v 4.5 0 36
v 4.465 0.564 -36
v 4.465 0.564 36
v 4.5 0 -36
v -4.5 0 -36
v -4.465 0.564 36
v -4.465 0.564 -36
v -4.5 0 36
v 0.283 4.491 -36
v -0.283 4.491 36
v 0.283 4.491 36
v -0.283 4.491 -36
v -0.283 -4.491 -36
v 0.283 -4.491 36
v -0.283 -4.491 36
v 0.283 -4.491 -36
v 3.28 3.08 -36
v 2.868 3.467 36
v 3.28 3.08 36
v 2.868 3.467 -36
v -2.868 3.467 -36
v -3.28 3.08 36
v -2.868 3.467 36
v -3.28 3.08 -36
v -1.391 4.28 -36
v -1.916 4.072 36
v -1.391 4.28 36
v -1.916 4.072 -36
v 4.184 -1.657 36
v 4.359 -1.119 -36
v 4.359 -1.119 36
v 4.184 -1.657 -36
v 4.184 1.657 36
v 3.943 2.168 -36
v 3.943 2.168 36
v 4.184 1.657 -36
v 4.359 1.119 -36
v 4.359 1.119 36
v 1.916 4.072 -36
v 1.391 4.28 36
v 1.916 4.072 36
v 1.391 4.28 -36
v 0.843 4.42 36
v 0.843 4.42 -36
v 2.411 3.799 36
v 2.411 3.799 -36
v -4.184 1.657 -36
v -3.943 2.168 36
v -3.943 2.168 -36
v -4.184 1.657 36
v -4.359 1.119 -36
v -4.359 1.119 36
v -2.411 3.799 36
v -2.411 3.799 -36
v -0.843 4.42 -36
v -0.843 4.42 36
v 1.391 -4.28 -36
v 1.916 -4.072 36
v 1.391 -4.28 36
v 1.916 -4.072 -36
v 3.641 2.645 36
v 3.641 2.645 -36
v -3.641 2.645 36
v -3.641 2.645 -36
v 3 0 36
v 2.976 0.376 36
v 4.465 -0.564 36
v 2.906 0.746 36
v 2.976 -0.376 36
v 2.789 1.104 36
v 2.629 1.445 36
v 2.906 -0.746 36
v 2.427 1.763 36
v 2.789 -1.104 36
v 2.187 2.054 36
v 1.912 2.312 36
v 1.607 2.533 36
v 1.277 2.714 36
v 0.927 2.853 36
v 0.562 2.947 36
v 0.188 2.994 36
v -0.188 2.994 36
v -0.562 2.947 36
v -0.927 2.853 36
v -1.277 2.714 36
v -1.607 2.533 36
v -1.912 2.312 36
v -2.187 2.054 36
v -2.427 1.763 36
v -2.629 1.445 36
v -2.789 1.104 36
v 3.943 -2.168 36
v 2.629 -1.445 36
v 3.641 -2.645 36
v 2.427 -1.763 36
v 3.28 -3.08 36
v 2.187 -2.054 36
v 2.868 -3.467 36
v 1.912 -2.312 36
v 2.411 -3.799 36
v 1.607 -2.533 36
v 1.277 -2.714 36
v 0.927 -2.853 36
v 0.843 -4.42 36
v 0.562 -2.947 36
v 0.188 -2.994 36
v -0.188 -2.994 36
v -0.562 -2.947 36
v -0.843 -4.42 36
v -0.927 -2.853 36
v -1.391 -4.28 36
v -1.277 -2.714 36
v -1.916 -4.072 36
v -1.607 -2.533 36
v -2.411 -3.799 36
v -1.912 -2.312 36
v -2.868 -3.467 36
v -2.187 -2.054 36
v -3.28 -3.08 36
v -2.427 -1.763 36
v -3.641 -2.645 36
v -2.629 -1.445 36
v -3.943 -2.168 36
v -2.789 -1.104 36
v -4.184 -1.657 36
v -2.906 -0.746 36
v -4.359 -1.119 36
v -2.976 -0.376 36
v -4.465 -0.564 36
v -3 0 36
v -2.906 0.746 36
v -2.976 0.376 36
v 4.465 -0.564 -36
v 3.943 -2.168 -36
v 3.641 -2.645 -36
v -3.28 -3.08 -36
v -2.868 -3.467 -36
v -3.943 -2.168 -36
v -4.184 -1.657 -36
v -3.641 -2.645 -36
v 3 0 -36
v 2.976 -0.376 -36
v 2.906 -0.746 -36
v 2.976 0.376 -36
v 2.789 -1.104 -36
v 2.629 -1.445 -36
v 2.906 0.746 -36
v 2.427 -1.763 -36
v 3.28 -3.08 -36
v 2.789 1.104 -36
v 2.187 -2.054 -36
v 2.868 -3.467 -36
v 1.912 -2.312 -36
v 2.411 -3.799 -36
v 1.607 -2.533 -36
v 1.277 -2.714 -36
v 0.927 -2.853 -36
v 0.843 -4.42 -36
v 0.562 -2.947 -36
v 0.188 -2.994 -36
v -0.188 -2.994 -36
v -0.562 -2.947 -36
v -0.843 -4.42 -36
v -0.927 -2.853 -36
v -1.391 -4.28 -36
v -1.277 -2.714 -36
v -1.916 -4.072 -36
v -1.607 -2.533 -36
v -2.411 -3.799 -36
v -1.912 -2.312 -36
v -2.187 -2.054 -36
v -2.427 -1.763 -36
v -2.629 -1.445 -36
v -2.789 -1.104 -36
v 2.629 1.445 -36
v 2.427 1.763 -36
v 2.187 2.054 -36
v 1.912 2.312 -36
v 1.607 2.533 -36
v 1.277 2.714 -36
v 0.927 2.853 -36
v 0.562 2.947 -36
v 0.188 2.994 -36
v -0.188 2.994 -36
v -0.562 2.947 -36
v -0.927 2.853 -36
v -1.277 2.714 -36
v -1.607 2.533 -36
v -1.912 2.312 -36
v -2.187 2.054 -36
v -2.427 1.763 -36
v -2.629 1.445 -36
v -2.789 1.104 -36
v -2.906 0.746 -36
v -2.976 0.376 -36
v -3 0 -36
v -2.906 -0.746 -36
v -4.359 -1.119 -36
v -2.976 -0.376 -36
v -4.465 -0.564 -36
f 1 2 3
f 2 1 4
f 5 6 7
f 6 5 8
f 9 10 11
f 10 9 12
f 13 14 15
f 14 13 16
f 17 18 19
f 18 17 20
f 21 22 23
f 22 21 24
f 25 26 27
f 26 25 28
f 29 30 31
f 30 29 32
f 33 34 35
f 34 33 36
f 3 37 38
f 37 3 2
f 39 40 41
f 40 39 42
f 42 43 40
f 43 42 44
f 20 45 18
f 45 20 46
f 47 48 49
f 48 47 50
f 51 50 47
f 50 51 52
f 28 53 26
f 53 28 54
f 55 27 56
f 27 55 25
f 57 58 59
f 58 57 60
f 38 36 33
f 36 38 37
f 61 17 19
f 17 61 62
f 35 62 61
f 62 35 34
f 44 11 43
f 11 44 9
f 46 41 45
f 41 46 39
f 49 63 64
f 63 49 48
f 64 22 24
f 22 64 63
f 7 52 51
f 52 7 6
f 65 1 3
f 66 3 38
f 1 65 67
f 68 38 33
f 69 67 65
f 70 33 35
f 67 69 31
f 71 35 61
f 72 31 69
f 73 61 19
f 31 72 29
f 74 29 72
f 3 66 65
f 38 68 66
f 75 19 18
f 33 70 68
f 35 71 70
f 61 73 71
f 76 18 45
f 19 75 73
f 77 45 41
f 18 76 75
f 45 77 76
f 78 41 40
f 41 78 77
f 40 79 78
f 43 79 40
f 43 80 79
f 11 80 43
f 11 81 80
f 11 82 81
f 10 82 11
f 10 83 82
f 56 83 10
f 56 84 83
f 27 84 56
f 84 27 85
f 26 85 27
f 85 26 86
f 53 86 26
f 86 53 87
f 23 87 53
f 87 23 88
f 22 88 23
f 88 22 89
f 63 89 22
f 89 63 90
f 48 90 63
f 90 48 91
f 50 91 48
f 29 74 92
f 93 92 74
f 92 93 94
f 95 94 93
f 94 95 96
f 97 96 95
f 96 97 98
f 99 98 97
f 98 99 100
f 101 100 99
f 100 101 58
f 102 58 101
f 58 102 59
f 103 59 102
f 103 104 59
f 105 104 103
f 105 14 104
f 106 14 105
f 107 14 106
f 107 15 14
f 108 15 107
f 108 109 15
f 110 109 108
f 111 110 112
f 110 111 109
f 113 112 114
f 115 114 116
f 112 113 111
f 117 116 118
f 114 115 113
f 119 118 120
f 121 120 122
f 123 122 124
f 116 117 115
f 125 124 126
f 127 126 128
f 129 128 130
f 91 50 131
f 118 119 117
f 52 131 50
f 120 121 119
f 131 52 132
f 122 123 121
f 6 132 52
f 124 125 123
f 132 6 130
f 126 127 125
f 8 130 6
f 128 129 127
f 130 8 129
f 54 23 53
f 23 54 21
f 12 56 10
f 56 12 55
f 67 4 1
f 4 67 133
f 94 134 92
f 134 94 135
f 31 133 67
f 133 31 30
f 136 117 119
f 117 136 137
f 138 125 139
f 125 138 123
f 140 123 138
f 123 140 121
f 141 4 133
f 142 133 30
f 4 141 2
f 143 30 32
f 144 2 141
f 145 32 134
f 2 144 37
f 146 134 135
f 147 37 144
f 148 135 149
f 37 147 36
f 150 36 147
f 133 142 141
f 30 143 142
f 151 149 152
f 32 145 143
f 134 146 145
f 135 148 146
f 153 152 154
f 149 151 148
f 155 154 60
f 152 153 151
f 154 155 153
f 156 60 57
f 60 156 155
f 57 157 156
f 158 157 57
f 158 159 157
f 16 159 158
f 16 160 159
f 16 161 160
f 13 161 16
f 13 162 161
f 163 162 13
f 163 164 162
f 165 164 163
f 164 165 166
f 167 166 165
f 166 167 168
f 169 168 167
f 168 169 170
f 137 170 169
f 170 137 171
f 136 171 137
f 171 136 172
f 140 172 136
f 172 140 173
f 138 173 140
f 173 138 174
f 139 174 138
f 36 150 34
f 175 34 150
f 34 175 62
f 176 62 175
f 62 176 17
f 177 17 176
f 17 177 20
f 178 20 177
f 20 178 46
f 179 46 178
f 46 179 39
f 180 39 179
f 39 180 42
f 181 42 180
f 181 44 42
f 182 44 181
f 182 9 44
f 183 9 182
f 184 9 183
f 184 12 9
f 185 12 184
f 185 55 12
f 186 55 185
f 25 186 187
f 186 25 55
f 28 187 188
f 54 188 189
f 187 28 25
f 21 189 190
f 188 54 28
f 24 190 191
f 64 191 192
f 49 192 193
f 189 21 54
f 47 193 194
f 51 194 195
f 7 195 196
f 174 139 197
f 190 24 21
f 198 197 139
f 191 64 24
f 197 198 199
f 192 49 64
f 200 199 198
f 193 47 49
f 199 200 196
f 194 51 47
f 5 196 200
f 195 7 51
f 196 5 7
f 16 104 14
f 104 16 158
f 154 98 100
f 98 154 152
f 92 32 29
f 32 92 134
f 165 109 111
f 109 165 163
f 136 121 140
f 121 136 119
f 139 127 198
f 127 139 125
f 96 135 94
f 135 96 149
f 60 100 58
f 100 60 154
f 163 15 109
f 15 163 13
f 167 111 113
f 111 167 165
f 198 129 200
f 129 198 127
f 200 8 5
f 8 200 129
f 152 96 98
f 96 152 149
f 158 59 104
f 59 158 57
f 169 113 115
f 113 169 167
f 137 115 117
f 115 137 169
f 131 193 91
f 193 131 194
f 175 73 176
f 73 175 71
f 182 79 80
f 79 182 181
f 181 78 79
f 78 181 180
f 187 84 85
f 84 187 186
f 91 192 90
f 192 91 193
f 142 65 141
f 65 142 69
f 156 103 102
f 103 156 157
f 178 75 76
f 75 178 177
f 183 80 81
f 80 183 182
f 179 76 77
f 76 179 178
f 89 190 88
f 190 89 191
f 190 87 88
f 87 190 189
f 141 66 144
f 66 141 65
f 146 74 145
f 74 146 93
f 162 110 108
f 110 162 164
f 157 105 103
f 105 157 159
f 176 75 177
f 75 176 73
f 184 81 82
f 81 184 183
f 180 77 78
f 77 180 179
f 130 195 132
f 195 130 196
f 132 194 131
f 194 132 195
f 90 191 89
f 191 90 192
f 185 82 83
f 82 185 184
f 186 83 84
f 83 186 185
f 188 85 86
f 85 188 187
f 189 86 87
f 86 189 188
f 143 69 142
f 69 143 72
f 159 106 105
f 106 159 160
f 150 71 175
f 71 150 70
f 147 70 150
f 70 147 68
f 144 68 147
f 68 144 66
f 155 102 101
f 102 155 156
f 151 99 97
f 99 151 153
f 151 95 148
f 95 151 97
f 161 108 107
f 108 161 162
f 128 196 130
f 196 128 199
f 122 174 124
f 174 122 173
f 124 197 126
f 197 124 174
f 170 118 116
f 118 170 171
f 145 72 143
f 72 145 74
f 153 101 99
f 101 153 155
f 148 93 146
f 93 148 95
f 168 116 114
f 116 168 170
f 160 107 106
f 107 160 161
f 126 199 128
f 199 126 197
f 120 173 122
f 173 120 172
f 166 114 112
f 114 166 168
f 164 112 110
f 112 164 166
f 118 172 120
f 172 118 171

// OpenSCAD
$fn = 50;


difference() {
	union() {
		translate(v = [0, 0, -36.0000000000]) {
			cylinder(h = 72, r = 4.5000000000);
		}
	}
	union() {
		translate(v = [0, 0, -100.0000000000]) {
			cylinder(h = 200, r = 3);
		}
	}
}
